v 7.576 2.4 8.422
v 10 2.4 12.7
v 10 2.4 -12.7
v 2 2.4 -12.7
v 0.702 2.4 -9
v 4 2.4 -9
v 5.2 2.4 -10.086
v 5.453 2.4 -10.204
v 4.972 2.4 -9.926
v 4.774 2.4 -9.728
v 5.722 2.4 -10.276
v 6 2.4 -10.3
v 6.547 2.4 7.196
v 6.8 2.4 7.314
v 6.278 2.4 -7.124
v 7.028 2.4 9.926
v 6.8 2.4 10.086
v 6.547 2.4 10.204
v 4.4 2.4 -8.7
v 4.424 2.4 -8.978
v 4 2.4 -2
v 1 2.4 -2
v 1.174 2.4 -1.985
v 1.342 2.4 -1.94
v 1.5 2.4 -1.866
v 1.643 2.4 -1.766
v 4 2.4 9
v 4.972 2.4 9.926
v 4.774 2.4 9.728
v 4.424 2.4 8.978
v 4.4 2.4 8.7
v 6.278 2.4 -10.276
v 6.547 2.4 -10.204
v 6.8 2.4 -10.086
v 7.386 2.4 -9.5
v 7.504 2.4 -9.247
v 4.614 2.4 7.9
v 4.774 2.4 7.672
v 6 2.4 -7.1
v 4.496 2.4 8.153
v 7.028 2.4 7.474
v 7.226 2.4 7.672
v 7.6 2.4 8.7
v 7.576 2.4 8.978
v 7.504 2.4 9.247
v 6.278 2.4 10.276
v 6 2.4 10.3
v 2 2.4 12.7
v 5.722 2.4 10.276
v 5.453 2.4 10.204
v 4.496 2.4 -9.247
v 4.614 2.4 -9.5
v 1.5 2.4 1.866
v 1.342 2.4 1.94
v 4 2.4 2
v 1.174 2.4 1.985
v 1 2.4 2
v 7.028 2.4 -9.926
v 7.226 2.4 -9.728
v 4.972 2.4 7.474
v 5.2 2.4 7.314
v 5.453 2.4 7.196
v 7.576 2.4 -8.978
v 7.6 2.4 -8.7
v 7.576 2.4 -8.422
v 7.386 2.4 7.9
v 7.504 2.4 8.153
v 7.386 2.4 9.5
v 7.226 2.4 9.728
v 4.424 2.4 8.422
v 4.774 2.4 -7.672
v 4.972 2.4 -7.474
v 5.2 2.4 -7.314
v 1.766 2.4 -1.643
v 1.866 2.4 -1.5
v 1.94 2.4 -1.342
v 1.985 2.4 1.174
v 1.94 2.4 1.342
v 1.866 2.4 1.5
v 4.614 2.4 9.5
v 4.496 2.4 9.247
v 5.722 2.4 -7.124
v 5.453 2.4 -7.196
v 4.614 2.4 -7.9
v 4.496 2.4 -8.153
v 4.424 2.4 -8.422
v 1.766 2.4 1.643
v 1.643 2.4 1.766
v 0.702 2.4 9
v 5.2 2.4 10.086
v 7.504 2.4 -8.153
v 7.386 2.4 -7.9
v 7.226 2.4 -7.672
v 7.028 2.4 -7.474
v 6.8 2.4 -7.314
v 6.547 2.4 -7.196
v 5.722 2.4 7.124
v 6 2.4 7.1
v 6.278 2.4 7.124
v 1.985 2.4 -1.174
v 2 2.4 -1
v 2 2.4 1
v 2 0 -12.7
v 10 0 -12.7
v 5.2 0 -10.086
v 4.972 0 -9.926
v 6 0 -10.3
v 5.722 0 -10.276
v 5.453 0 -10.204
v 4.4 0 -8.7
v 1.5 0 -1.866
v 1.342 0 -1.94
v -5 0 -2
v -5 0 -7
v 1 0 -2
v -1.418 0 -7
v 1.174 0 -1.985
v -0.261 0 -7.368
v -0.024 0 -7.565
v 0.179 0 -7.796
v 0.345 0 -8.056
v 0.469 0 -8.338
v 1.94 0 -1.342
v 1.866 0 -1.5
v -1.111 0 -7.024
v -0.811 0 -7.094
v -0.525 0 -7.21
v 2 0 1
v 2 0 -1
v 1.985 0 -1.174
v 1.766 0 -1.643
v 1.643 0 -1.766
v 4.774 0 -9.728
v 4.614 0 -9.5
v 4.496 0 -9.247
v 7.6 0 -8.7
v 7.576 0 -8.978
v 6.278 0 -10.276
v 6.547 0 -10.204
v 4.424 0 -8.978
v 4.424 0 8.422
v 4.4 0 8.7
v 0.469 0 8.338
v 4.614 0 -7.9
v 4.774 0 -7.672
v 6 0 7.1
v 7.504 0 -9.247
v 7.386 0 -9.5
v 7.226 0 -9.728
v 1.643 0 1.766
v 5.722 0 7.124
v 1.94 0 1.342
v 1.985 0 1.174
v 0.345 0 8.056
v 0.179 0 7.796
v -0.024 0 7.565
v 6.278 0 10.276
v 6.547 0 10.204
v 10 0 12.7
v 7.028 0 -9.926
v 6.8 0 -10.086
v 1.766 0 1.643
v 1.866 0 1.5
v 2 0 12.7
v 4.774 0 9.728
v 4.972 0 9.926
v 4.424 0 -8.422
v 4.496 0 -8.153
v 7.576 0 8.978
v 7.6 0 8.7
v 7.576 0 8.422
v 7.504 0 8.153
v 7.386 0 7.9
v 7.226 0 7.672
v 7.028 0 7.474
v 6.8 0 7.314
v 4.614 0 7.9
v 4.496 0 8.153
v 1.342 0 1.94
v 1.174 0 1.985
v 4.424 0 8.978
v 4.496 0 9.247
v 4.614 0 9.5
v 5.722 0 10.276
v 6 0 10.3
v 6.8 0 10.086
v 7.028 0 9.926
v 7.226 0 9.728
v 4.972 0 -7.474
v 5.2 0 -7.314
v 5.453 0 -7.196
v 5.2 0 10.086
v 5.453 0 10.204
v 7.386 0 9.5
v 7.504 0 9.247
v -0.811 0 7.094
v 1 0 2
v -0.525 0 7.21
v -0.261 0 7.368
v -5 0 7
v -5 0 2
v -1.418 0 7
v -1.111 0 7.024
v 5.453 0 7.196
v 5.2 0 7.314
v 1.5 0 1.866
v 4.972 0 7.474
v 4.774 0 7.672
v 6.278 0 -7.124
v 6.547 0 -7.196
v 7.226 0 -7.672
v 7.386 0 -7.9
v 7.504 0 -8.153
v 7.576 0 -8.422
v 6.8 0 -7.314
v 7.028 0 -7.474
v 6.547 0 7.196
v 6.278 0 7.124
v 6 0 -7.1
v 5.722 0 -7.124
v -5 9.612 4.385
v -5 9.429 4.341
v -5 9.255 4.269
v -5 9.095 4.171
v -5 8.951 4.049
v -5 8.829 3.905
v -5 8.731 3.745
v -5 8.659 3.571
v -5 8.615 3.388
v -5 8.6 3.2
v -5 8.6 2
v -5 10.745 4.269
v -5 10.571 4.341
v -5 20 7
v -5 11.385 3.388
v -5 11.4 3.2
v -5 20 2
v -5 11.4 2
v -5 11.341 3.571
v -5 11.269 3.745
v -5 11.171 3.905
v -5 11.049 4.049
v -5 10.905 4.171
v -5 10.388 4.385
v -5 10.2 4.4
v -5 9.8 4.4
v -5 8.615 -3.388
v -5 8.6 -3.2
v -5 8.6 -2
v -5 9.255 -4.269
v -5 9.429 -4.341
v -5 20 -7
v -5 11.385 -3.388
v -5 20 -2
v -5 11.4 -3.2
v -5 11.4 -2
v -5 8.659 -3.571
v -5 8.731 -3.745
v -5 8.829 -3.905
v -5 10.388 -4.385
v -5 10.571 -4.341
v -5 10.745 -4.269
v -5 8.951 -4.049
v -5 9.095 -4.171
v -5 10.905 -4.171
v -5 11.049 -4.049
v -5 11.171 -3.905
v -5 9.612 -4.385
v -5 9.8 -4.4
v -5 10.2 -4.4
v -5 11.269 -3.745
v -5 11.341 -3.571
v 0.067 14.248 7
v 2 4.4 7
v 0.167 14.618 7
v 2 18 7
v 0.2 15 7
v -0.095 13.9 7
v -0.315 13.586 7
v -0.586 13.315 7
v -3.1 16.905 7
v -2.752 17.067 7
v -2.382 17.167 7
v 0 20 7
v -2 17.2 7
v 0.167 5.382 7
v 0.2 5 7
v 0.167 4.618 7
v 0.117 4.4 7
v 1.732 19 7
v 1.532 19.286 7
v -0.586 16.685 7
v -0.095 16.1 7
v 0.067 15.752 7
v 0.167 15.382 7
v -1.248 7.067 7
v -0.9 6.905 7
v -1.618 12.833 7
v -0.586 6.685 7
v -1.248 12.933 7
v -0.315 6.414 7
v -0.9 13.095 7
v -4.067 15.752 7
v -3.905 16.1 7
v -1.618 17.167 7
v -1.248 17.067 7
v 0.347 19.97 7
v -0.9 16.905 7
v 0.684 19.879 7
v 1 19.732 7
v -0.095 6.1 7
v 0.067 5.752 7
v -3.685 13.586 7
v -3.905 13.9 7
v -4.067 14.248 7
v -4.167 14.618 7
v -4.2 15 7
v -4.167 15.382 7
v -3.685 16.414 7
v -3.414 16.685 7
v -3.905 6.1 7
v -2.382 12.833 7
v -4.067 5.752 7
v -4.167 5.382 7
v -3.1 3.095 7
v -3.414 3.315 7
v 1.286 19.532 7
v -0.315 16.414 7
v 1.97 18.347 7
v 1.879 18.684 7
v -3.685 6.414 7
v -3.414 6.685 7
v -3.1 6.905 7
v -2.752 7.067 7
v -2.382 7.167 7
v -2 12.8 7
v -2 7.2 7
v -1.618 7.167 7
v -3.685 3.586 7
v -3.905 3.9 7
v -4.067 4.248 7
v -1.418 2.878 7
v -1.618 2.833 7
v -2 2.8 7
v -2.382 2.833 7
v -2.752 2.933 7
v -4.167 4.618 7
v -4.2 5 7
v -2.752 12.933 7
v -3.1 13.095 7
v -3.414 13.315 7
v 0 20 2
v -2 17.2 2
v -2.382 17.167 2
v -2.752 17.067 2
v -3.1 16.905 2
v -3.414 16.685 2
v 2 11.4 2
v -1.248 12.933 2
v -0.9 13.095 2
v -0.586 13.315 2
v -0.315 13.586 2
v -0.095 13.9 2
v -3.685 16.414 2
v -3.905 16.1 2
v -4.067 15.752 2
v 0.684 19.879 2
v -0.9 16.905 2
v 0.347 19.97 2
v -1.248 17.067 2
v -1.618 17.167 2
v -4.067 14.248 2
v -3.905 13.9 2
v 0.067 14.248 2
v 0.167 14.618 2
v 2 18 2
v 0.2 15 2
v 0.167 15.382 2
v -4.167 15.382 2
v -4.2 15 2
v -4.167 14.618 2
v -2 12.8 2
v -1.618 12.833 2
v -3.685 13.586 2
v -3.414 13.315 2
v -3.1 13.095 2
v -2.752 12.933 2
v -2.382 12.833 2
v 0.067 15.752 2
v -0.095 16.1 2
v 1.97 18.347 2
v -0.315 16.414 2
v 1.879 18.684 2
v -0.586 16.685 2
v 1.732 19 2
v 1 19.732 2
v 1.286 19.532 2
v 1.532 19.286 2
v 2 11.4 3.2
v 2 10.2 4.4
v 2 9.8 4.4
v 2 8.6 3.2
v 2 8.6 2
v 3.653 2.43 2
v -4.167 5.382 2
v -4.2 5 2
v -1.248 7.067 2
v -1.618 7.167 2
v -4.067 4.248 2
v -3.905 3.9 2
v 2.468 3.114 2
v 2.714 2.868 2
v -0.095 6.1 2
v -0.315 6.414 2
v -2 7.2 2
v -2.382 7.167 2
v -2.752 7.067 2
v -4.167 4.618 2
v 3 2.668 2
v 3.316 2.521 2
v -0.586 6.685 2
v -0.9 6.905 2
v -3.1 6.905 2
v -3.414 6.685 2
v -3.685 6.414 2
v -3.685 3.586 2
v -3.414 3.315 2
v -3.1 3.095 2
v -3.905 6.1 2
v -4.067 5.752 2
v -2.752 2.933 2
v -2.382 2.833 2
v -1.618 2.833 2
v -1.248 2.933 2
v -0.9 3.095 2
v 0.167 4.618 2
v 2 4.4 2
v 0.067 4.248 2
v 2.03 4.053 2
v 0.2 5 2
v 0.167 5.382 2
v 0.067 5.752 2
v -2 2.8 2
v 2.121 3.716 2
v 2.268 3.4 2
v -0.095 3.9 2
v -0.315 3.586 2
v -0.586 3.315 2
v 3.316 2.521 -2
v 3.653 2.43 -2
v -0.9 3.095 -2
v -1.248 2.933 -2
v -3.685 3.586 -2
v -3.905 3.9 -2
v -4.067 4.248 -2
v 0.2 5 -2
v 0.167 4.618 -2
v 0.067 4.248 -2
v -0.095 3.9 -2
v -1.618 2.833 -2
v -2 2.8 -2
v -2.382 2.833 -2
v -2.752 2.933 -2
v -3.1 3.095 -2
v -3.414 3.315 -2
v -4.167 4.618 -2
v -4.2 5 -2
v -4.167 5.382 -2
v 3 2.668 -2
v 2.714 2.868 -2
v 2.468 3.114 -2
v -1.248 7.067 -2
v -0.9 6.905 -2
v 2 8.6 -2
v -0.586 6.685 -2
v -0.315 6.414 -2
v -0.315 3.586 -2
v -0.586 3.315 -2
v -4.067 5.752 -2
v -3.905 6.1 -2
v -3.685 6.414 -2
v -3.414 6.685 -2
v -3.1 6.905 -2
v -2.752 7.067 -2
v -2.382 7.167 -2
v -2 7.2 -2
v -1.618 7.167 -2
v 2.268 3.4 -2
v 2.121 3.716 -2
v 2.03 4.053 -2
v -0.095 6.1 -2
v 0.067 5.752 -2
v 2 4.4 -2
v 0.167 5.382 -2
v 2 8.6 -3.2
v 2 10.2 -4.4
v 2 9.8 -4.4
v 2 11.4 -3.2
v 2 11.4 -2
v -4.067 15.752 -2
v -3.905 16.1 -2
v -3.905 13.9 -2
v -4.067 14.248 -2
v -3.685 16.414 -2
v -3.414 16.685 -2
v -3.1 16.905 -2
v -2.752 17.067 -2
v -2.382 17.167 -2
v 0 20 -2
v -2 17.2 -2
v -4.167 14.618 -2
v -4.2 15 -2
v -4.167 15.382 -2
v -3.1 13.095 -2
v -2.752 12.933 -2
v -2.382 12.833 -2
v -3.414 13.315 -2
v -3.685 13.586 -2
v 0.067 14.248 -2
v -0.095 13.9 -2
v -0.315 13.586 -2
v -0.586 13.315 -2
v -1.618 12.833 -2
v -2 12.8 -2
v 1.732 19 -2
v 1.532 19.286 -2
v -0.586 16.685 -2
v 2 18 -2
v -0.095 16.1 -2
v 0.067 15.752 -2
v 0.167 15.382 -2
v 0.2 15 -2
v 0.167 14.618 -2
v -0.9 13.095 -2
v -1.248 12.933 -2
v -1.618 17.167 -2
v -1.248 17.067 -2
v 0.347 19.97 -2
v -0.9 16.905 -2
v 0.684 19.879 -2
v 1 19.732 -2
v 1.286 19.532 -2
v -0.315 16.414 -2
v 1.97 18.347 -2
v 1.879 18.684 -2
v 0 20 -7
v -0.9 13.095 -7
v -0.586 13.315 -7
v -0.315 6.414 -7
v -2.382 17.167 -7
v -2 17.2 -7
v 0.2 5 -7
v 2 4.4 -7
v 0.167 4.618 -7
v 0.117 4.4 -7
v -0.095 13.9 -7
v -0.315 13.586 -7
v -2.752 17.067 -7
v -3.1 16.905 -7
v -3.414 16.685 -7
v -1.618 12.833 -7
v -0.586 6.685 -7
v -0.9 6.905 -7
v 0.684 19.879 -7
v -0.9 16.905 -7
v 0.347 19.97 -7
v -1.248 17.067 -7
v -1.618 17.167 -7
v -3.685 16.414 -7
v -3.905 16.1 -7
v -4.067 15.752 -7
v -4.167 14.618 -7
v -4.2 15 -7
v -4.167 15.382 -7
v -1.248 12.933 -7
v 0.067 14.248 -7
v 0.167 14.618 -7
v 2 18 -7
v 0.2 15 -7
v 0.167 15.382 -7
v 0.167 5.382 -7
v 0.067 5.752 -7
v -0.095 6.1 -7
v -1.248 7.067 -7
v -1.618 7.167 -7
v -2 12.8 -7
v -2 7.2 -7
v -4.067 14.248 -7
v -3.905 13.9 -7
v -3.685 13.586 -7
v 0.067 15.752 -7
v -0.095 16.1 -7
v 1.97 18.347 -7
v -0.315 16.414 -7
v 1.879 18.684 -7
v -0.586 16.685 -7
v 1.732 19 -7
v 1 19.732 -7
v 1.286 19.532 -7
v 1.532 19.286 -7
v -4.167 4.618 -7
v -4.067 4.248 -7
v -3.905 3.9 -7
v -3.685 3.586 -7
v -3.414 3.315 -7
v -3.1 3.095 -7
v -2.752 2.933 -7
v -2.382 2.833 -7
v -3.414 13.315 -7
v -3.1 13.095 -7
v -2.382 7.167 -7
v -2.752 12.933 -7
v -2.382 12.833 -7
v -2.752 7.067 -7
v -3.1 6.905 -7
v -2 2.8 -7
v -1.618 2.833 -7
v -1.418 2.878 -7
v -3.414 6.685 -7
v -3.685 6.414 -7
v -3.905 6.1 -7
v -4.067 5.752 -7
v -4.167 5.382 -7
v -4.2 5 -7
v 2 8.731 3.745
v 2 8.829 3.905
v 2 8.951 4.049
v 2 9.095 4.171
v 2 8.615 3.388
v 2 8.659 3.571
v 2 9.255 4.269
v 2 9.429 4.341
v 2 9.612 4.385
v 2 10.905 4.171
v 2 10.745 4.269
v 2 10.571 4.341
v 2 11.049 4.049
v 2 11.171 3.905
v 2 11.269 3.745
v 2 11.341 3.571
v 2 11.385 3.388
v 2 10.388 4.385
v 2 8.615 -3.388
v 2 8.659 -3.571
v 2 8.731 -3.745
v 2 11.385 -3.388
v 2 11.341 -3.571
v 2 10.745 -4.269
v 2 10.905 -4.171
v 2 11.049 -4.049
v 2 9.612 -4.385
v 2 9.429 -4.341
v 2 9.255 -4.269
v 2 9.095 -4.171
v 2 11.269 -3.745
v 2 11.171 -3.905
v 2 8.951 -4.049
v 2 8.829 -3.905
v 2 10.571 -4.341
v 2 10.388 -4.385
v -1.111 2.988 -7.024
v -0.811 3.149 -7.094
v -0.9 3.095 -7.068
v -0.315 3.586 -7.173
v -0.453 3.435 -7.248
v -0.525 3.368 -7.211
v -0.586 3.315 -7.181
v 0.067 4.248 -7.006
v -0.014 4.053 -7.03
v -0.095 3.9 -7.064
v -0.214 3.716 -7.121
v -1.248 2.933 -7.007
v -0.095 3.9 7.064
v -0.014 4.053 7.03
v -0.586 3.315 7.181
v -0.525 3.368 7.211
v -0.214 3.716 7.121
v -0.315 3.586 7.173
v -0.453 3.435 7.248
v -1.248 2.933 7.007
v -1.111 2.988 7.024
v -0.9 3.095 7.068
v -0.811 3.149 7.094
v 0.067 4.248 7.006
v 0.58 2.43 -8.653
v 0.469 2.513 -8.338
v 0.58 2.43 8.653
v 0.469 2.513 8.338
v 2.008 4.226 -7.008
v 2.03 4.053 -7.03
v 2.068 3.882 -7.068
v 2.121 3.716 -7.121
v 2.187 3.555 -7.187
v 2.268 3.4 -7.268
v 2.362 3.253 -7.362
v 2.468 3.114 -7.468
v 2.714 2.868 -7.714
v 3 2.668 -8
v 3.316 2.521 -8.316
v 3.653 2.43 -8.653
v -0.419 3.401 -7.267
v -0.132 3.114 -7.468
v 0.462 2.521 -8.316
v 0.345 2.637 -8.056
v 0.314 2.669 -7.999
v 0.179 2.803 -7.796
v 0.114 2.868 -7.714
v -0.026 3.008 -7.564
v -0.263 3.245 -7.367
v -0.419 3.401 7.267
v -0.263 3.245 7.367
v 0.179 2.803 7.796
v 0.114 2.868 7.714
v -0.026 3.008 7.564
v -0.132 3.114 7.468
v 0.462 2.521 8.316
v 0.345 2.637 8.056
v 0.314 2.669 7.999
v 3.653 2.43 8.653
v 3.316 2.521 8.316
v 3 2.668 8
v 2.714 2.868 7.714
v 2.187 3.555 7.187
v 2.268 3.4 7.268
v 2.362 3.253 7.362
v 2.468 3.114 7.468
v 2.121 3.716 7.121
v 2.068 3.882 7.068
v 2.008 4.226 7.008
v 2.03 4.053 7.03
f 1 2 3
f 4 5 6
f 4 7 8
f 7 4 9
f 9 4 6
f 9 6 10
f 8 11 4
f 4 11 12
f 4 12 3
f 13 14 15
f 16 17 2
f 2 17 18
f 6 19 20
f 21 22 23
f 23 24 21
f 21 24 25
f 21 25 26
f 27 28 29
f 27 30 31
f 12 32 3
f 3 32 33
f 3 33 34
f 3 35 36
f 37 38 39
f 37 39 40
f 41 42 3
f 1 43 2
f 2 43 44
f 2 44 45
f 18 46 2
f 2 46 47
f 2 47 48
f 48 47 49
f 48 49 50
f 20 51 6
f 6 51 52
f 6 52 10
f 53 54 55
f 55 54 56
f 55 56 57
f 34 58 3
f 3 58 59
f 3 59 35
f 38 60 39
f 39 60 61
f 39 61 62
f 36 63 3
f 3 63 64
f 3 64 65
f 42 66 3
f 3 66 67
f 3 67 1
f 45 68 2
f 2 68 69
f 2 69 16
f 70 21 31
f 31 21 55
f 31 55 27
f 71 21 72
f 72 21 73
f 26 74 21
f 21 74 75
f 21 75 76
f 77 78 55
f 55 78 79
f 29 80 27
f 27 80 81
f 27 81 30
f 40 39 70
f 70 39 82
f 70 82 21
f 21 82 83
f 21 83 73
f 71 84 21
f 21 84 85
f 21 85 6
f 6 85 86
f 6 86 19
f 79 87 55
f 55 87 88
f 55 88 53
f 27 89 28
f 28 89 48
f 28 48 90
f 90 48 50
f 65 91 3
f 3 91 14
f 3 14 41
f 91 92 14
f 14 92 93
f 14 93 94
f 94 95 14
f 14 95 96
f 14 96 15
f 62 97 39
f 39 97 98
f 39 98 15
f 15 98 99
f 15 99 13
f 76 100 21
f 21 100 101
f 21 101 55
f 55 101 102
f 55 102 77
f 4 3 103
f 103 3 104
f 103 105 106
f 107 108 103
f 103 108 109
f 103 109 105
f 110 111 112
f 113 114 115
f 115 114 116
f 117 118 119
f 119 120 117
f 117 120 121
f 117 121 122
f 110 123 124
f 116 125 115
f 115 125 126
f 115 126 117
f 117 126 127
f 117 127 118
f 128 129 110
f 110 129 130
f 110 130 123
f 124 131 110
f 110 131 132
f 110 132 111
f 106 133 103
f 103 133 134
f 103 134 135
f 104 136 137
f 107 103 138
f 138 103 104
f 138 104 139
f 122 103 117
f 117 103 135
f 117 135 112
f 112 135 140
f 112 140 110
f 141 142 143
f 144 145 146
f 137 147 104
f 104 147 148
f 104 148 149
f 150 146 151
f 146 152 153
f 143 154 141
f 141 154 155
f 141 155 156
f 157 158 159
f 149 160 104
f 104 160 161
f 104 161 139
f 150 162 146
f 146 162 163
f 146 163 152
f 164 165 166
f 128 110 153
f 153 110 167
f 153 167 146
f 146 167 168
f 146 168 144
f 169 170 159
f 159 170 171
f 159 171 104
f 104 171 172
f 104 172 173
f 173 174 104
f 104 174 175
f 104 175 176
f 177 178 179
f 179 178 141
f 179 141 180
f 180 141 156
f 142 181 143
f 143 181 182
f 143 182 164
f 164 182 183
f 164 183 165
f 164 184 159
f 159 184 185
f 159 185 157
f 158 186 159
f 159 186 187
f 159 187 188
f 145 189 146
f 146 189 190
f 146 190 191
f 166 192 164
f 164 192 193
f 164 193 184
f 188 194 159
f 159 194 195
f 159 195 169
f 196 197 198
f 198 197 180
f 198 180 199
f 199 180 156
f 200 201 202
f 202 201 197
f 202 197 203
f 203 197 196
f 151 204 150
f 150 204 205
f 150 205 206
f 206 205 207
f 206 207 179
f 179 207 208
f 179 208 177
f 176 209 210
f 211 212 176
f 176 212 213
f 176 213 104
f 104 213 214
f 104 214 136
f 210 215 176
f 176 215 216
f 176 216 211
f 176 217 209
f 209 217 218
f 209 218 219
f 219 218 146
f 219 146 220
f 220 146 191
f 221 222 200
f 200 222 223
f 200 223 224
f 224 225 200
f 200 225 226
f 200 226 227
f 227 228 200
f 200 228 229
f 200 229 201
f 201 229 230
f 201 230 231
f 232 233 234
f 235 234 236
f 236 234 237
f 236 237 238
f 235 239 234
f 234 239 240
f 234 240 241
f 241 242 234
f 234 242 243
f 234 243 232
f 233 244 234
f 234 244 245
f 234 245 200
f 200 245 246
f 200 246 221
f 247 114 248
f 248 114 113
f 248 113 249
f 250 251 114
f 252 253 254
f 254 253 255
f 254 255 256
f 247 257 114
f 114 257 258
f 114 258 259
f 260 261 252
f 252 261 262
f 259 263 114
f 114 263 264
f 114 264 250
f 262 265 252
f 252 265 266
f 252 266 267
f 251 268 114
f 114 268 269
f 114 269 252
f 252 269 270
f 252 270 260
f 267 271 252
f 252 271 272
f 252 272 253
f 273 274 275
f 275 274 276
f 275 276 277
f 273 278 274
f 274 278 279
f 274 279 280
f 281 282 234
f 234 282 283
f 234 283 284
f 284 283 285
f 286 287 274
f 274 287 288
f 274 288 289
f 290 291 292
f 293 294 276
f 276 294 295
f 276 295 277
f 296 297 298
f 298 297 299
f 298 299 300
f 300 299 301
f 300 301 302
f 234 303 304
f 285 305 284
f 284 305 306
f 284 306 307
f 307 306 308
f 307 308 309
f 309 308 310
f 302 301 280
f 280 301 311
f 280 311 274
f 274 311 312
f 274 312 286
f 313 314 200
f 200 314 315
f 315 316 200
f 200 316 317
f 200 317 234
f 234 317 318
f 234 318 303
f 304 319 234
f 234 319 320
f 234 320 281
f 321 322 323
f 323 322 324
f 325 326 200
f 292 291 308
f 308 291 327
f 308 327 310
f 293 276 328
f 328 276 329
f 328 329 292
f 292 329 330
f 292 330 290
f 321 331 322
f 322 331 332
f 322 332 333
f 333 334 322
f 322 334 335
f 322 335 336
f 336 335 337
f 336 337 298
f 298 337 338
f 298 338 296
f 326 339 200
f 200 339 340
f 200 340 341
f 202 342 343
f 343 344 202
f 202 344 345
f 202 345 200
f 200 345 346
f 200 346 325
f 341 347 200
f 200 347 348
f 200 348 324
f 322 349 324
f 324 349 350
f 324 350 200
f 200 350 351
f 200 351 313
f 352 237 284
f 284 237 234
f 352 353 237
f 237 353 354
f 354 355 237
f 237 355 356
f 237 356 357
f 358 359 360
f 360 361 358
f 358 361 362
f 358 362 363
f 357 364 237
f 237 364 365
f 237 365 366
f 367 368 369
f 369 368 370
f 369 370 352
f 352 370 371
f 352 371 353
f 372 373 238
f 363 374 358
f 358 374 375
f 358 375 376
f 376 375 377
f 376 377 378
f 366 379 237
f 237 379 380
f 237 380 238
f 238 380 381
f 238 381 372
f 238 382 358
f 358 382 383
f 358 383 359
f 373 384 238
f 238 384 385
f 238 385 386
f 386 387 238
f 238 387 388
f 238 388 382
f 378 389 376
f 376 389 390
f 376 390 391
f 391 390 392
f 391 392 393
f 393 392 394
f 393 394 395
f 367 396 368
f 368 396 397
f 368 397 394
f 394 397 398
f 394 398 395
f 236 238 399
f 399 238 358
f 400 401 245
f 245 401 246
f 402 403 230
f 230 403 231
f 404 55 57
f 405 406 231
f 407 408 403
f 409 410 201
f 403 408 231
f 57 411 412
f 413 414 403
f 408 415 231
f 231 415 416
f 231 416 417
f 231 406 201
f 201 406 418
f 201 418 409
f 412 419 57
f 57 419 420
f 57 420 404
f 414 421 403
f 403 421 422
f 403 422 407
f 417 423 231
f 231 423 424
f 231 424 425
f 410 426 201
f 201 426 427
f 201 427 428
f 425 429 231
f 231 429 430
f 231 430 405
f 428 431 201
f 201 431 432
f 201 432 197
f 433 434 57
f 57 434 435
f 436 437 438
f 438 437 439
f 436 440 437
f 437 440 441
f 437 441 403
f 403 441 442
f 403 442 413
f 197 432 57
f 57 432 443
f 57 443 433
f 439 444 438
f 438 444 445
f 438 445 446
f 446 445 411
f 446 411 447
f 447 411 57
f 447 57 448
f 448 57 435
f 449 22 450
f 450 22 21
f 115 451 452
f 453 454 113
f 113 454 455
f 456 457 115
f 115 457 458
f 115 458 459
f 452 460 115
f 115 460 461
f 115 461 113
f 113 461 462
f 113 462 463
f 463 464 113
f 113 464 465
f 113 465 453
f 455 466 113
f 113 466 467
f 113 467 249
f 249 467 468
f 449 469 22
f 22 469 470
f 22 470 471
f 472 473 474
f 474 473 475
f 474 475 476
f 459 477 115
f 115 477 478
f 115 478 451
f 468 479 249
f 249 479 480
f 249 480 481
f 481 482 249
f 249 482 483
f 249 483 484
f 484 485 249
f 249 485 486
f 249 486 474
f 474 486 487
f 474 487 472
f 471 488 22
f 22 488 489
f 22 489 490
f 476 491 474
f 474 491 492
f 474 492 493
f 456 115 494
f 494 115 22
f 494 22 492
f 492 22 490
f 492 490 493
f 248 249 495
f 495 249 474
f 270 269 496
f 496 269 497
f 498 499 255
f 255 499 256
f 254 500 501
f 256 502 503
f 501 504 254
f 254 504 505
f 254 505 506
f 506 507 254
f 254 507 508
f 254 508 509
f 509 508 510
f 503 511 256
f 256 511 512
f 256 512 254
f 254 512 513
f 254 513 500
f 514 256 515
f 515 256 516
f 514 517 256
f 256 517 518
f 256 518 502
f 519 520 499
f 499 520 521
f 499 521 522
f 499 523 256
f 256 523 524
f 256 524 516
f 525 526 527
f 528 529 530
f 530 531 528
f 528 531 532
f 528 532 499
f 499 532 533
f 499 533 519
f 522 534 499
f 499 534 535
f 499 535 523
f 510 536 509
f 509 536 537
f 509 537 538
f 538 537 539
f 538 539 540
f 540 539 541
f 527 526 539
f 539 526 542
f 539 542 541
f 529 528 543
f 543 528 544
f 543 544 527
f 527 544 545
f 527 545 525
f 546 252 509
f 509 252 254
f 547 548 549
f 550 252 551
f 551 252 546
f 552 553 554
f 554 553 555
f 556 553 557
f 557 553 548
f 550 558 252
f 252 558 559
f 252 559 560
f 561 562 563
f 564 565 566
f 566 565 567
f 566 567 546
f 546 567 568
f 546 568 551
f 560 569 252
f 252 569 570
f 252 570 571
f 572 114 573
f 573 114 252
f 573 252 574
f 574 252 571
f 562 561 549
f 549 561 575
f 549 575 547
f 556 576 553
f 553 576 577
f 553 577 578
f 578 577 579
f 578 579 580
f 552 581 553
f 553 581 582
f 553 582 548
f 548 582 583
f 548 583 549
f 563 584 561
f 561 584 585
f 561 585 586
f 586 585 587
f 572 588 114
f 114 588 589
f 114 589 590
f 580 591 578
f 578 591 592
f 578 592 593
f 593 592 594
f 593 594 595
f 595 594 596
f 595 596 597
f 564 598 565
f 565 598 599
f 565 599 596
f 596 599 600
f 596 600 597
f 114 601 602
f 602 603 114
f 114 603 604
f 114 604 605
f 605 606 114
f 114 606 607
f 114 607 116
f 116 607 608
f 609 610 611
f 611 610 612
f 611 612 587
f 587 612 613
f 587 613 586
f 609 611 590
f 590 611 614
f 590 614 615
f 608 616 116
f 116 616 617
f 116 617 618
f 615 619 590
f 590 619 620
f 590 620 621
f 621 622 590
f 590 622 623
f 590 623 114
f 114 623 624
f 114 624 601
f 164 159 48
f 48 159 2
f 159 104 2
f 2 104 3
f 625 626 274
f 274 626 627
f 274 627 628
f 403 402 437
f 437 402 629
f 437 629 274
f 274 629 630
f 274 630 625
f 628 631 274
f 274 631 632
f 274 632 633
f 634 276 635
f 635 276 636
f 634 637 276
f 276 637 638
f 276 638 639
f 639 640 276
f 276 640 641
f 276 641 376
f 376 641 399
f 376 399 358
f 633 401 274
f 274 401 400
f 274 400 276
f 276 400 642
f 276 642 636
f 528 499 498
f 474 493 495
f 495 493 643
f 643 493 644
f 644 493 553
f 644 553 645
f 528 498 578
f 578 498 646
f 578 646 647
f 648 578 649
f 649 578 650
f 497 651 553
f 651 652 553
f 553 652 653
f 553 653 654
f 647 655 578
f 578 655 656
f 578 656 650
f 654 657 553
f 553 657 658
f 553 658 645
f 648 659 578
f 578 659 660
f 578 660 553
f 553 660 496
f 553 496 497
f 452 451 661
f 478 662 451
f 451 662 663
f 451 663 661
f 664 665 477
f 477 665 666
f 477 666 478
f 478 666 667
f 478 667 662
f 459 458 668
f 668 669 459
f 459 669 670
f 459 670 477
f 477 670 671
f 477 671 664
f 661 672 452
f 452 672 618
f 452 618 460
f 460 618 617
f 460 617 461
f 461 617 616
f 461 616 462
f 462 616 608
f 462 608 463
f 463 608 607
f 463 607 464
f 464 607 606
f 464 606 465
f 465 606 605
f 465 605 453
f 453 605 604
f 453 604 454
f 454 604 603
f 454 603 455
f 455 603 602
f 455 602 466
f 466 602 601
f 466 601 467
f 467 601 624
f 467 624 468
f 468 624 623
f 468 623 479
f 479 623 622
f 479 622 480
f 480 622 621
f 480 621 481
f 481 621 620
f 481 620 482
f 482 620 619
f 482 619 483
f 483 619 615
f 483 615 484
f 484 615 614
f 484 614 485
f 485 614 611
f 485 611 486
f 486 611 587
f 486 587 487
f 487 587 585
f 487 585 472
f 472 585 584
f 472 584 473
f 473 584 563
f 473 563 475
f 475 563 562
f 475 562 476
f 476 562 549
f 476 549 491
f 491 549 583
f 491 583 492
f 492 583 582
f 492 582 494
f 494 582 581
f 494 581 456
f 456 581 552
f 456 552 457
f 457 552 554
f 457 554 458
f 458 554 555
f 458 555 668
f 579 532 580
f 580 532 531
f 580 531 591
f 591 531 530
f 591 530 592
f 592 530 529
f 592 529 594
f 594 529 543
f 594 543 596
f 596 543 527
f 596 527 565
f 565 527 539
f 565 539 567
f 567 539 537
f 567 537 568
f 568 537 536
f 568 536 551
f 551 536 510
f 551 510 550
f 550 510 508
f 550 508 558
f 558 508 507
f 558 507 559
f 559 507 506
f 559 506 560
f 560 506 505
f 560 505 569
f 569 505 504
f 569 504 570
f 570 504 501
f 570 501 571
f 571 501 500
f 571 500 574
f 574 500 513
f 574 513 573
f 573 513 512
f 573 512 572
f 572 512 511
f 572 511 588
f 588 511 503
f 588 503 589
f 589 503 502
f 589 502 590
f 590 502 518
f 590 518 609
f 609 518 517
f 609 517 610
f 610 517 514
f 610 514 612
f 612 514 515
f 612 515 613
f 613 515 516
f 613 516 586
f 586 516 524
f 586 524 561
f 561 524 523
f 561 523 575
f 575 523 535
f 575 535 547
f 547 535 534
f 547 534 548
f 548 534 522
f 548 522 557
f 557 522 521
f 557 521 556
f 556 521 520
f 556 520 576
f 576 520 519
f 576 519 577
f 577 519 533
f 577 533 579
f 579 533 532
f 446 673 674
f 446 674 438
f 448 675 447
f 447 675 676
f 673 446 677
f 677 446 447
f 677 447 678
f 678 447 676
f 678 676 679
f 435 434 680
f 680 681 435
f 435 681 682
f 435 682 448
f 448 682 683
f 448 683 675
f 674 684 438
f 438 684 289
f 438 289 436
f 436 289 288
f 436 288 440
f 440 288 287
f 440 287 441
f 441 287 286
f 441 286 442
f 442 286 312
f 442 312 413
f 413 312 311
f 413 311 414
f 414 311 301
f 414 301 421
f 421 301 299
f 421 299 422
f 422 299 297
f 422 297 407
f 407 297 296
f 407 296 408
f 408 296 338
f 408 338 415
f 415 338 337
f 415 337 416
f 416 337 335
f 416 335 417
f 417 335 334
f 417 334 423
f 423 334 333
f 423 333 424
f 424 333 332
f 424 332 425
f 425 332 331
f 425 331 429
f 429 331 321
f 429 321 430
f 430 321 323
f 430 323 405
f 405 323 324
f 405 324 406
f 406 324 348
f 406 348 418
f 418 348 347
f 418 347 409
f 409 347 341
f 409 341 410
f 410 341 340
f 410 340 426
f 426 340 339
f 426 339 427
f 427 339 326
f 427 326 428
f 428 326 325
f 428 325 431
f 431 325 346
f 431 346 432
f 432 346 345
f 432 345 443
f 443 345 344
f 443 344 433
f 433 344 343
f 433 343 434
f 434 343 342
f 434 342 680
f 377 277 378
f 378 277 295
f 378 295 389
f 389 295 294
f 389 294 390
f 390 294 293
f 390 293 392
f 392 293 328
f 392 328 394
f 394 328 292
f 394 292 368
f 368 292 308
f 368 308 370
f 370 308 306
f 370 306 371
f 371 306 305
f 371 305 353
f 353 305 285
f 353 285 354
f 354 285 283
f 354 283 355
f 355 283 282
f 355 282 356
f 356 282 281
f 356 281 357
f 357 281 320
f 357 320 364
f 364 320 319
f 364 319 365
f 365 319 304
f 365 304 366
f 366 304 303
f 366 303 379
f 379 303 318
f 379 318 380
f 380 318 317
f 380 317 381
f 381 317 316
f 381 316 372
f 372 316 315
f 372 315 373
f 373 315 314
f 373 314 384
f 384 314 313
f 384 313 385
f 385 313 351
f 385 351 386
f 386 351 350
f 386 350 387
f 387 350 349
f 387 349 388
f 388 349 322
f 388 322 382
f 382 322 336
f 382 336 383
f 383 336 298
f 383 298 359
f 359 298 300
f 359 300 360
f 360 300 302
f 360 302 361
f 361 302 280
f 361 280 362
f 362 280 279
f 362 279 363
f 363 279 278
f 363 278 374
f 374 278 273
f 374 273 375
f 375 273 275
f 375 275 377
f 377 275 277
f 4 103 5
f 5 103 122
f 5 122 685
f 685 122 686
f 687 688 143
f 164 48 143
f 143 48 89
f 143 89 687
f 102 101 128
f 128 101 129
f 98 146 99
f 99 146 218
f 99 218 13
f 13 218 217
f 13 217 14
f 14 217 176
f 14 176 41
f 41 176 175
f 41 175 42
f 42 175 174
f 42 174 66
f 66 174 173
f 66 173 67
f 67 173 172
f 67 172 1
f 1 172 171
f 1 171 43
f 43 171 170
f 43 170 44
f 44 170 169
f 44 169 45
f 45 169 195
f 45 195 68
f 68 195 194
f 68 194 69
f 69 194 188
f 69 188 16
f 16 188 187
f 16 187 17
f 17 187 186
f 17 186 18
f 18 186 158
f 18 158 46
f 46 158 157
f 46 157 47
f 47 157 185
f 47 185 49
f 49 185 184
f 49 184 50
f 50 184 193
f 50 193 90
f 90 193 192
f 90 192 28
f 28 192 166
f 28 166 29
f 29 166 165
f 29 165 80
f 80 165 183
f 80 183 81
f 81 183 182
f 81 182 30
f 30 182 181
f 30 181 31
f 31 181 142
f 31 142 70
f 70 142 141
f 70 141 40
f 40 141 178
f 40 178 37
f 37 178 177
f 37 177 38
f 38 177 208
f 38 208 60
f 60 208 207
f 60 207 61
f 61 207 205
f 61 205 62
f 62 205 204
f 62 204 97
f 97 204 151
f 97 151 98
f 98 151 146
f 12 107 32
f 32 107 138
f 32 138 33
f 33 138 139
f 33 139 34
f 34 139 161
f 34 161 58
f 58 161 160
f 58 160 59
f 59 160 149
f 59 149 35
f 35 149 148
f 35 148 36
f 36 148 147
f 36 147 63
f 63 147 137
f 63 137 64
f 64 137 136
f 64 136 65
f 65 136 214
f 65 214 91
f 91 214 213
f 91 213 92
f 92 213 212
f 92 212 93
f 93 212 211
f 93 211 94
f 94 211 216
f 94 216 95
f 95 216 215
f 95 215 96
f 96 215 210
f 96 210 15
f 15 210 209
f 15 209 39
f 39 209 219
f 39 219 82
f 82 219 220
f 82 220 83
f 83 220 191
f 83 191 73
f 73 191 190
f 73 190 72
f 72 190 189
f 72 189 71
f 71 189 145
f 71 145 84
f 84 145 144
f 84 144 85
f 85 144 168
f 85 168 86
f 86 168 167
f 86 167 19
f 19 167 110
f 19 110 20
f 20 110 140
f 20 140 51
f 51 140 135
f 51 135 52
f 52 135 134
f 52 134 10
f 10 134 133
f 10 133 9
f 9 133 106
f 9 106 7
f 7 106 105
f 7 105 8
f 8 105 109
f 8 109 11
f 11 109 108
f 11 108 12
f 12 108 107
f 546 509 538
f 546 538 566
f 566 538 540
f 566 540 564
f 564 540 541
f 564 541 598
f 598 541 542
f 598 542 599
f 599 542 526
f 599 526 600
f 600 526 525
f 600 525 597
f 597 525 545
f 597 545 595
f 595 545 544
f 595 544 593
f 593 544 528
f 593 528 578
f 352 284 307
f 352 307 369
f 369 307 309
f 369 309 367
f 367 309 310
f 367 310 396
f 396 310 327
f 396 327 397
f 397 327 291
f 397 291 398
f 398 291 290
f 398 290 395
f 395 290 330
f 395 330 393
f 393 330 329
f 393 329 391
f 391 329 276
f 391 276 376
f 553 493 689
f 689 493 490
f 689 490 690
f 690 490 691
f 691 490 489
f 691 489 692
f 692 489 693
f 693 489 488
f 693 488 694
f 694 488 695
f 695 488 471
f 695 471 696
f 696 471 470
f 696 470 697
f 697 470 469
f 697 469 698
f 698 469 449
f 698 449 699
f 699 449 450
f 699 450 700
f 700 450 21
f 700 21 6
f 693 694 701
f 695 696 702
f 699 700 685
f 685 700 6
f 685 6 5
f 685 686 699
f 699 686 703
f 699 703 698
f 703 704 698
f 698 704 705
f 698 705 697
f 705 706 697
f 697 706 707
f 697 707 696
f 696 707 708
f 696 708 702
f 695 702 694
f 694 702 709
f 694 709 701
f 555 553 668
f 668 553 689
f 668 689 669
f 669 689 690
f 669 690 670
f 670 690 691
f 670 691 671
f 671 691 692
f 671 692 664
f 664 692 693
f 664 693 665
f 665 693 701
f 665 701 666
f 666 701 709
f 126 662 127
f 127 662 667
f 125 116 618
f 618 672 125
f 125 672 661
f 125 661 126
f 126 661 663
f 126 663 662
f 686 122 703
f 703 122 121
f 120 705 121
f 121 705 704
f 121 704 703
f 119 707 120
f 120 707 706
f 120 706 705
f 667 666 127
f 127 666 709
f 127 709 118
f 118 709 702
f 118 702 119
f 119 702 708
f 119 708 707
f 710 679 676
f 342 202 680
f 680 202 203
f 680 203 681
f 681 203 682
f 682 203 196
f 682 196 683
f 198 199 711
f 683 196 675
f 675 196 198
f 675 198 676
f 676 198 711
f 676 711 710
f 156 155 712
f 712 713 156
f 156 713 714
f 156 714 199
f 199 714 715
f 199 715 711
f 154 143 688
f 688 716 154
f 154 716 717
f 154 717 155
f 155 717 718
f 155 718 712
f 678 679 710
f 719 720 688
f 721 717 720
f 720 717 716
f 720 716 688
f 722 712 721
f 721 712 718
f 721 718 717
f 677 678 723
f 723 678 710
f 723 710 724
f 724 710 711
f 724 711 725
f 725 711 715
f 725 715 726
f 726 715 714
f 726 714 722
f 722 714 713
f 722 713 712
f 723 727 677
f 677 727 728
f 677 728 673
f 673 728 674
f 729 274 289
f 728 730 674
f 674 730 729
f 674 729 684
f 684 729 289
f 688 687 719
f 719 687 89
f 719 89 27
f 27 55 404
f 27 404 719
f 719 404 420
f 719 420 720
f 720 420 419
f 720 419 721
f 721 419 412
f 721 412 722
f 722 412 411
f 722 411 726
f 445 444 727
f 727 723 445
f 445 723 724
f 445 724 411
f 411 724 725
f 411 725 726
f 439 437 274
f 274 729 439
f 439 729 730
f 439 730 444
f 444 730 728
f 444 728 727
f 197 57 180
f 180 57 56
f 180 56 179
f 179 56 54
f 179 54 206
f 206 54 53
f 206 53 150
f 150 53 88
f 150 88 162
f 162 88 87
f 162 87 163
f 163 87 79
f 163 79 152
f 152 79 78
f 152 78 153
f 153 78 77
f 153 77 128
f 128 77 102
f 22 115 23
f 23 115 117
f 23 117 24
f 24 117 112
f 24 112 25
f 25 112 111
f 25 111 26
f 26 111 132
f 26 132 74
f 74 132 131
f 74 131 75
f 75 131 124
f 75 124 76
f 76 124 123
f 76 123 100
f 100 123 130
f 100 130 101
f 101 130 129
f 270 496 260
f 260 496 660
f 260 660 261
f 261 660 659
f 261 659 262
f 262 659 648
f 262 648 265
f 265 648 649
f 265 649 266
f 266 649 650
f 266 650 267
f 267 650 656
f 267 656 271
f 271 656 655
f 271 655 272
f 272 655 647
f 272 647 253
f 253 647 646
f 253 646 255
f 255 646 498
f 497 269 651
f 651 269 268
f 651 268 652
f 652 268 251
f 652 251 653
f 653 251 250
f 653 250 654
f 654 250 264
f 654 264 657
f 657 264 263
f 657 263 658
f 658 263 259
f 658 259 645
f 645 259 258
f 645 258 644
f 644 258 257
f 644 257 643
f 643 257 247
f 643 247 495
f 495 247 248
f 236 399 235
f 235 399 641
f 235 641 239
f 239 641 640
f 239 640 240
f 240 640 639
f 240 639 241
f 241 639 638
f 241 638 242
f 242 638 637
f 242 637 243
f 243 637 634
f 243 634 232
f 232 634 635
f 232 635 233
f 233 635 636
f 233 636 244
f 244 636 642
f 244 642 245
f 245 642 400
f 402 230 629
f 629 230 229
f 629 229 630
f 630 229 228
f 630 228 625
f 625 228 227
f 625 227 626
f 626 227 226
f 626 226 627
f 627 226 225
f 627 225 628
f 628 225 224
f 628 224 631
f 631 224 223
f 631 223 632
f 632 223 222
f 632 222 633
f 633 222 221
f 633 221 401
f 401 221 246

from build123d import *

# Parameters (mm, degrees)
SALIENTE_EXTRUIR1_DEPTH = 5
SALIENTE_EXTRUIR2_DEPTH = 10
SALIENTE_EXTRUIR3_DEPTH = 2
CORTAR_EXTRUIR1_START   = 7
CROQUIS2_R              = 2.2
CORTAR_EXTRUIR1_DEPTH   = 14
CROQUIS3_R              = 1.6
CROQUIS3_W              = 5
CROQUIS3_H              = 4
CROQUIS3_W_2            = 2
CORTAR_EXTRUIR2_DEPTH   = 2.4
REDONDEO1_R             = 2
REDONDEO2_R             = 2
REDONDEO3_R             = 1
REDONDEO4_R             = 1.2


with BuildPart() as part:
    # Croquis1 → Saliente-Extruir1 (new body)
    with BuildSketch(Plane(origin=(0, 0, 0), x_dir=(0, 0, -1), z_dir=(1, 0, 0))):
        Polygon((-12.7, 2.4), (-12.7, 0), (12.7, 0), (12.7, 2.4), (7, 2.4), (7, 20), (2, 20), (2, 11.4), (4.4, 11.4), (4.4, 8.6), (2, 8.6), (2, 2.4), (-2, 2.4), (-2, 8.6), (-4.4, 8.6), (-4.4, 11.4), (-2, 11.4), (-2, 20), (-7, 20), (-7, 2.4), align=None)
    extrude(amount=-SALIENTE_EXTRUIR1_DEPTH)

    # Croquis1<3> → Saliente-Extruir2 (add)
    with BuildSketch(Plane(origin=(0, 0, 0), x_dir=(0, 0, -1), z_dir=(1, 0, 0))):
        Polygon((2, 2.4), (7, 2.4), (12.7, 2.4), (12.7, 0), (-12.7, 0), (-12.7, 2.4), (-7, 2.4), (-2, 2.4), align=None)
    extrude(amount=SALIENTE_EXTRUIR2_DEPTH)

    # Croquis1<4> → Saliente-Extruir3 (add)
    with BuildSketch(Plane(origin=(0, 0, 0), x_dir=(0, 0, -1), z_dir=(1, 0, 0))):
        Polygon((-7, 20), (-7, 2.4), (-2, 2.4), (-2, 8.6), (-4.4, 8.6), (-4.4, 11.4), (-2, 11.4), (-2, 20), align=None)
        Polygon((2, 2.4), (7, 2.4), (7, 20), (2, 20), (2, 11.4), (4.4, 11.4), (4.4, 8.6), (2, 8.6), align=None)
    extrude(amount=SALIENTE_EXTRUIR3_DEPTH)

    # Croquis2 → Cortar-Extruir1 (cut)
    with BuildSketch(Plane.XY.offset(CORTAR_EXTRUIR1_START)):
        with Locations(Location((-2, 15, 0), (0, 0, 270))):
            Circle(CROQUIS2_R)
        with Locations(Location((-2, 5, 0), (0, 0, 270))):
            Circle(CROQUIS2_R)
    extrude(amount=-CORTAR_EXTRUIR1_DEPTH, mode=Mode.SUBTRACT)

    # Croquis3 → Cortar-Extruir2 (cut)
    with BuildSketch(Plane(origin=(0, 0, 0), x_dir=(1, 0, 0), z_dir=(0, 1, 0))):
        Polygon((-5, 7), (0, 7), (2, 12.7), (-5, 12.7), align=None)
        Polygon((2, -12.7), (0, -7), (-5, -7), (-5, -12.7), align=None)
        with Locations(Location((6, -8.7, 0), (0, 0, 90))):
            Circle(CROQUIS3_R)
        with Locations(Location((6, 8.7, 0), (0, 0, 90))):
            Circle(CROQUIS3_R)
        with Locations((-2.5, 0)):
            Rectangle(CROQUIS3_W, CROQUIS3_H)
        with Locations((1, 0)):
            Rectangle(CROQUIS3_W_2, CROQUIS3_H)
    extrude(amount=CORTAR_EXTRUIR2_DEPTH, mode=Mode.SUBTRACT)

    # Redondeo1
    redondeo1_edges = [part.edges().sort_by_distance(p)[0] for p in [
        (2, 20, -4.5),
        (2, 20, 4.5),
    ]]
    fillet(redondeo1_edges, radius=REDONDEO1_R)

    # Redondeo2
    # the kernel refuses this fillet: 2 mm, written as the material it adds along each edge
    with BuildSketch(Plane(origin=(2, 2.4, 3), x_dir=(1, 0, 0), z_dir=(0, 0, -1))) as redondeo2_piece_1_section:
        with BuildLine():
            CenterArc((REDONDEO2_R, -REDONDEO2_R), REDONDEO2_R, 90, 90)
            Line((0, -REDONDEO2_R), (0, 0))
            Line((0, 0), (REDONDEO2_R, 0))
        make_face()
    redondeo2_piece_1 = extrude(amount=15, mode=Mode.PRIVATE)
    redondeo2_piece_1 = split(redondeo2_piece_1, bisect_by=Plane(origin=(2, 2.4, 2), z_dir=(0, 0, 1)), keep=Keep.TOP, mode=Mode.PRIVATE)
    add(redondeo2_piece_1)
    with BuildSketch(Plane(origin=(2, 2.4, -2), x_dir=(1, 0, 0), z_dir=(0, 0, -1))) as redondeo2_piece_2:
        with BuildLine():
            CenterArc((REDONDEO2_R, -REDONDEO2_R), REDONDEO2_R, 90, 90)
            Line((0, -REDONDEO2_R), (0, 0))
            Line((0, 0), (REDONDEO2_R, 0))
        make_face()
    extrude(amount=5)
    with BuildSketch(Plane(origin=(-5, 2.4, -7), x_dir=(0, 0, -1), z_dir=(1, 0, 0))) as redondeo2_piece_3_section:
        with BuildLine():
            CenterArc((REDONDEO2_R, REDONDEO2_R), REDONDEO2_R, 180, 90)
            Line((0, REDONDEO2_R), (0, 0))
            Line((0, 0), (REDONDEO2_R, 0))
        make_face()
    redondeo2_piece_3 = extrude(amount=7, mode=Mode.PRIVATE)
    redondeo2_piece_3 = split(redondeo2_piece_3, bisect_by=Plane(origin=(-0.548095369, 2.4, -5.4379282), z_dir=(0.9435999821328808, 0, 0.331087713029081)), keep=Keep.TOP, mode=Mode.PRIVATE)
    redondeo2_piece_3 = redondeo2_piece_3 - Plane(origin=(-2, 5, -7), x_dir=(0, -1, 0), z_dir=(0, 0, 1)) * Cylinder(2.2, 22, mode=Mode.PRIVATE)
    add(redondeo2_piece_3)
    with BuildSketch(Plane(origin=(2, 2.4, 7), x_dir=(0, 1, 0), z_dir=(-1, 0, 0))) as redondeo2_piece_4_section:
        with BuildLine():
            CenterArc((REDONDEO2_R, -REDONDEO2_R), REDONDEO2_R, 90, 90)
            Line((0, -REDONDEO2_R), (0, 0))
            Line((0, 0), (REDONDEO2_R, 0))
        make_face()
    redondeo2_piece_4 = extrude(amount=7, mode=Mode.PRIVATE)
    redondeo2_piece_4 = split(redondeo2_piece_4, bisect_by=Plane(origin=(0.219238147, 2.4, 7.62482872), z_dir=(0.9435999821328808, 0, -0.331087713029081)), keep=Keep.TOP, mode=Mode.PRIVATE)
    redondeo2_piece_4 = redondeo2_piece_4 - Plane(origin=(-2, 5, 7), x_dir=(0, -1, 0), z_dir=(0, 0, 1)) * Cylinder(2.2, 22, mode=Mode.PRIVATE)
    add(redondeo2_piece_4)
    with BuildSketch(Plane(origin=(0, 0, 7), x_dir=(-1, 0, 0), z_dir=(0, 1, 0))) as redondeo2_piece_5:
        with BuildLine():
            CenterArc((REDONDEO2_R * 0.708893916529, REDONDEO2_R), REDONDEO2_R, 199.334808538, 70.665191462)
            Line((-REDONDEO2_R * 0.234706065604, REDONDEO2_R * 0.668912286971), (0, 0))
            Line((0, 0), (REDONDEO2_R * 0.708893916529, 0))
        make_face()
    extrude(amount=2.4)
    with BuildSketch(Plane(origin=(0, 0, -7), x_dir=(-1, 0, 0), z_dir=(0, 1, 0))) as redondeo2_piece_6:
        with BuildLine():
            CenterArc((REDONDEO2_R * 0.708893916529, -REDONDEO2_R), REDONDEO2_R, 90, 70.665191462)
            Line((-REDONDEO2_R * 0.234706065604, -REDONDEO2_R * 0.668912286971), (0, 0))
            Line((0, 0), (REDONDEO2_R * 0.708893916529, 0))
        make_face()
    extrude(amount=2.4)
    with BuildSketch(Plane(origin=(2, 2.4, 7), x_dir=(0, 1, 0), z_dir=(0, 0, -1))) as redondeo2_piece_7:
        with BuildLine():
            CenterArc((REDONDEO2_R, REDONDEO2_R), REDONDEO2_R, 180, 90)
            Line((0, REDONDEO2_R), (0, 0))
            Line((0, 0), (REDONDEO2_R, 0))
        make_face()
    extrude(amount=5)
    with BuildSketch(Plane(origin=(2, 2.4, 12), x_dir=(0, 1, 0), z_dir=(0, 0, -1))) as redondeo2_piece_8_section:
        with BuildLine():
            CenterArc((REDONDEO2_R, REDONDEO2_R), REDONDEO2_R, 180, 90)
            Line((0, REDONDEO2_R), (0, 0))
            Line((0, 0), (REDONDEO2_R, 0))
        make_face()
    redondeo2_piece_8 = extrude(amount=15, mode=Mode.PRIVATE)
    redondeo2_piece_8 = split(redondeo2_piece_8, bisect_by=Plane(origin=(2, 2.4, -2), z_dir=(0, 0, -1)), keep=Keep.TOP, mode=Mode.PRIVATE)
    add(redondeo2_piece_8)
    with BuildSketch(Plane(origin=(2, 2.4, -2), x_dir=(1, 0, 0), z_dir=(0, 0, -1))) as redondeo2_piece_9a_section:
        with BuildLine():
            CenterArc((REDONDEO2_R, -REDONDEO2_R), REDONDEO2_R, 90, 90)
            Line((0, -REDONDEO2_R), (0, 0))
            Line((0, 0), (REDONDEO2_R, 0))
        make_face()
    redondeo2_piece_9a = extrude(amount=10, mode=Mode.PRIVATE)
    redondeo2_piece_9a = split(redondeo2_piece_9a, bisect_by=Plane(origin=(2, 2.4, -7), z_dir=(0, 0, -1)), keep=Keep.TOP, mode=Mode.PRIVATE)
    with BuildSketch(Plane(origin=(-5, 2.4, -7), x_dir=(0, 0, -1), z_dir=(1, 0, 0))) as redondeo2_piece_9b_section:
        with BuildLine():
            CenterArc((REDONDEO2_R, REDONDEO2_R), REDONDEO2_R, 180, 90)
            Line((0, REDONDEO2_R), (0, 0))
            Line((0, 0), (REDONDEO2_R, 0))
        make_face()
    redondeo2_piece_9b = extrude(amount=12, mode=Mode.PRIVATE)
    redondeo2_piece_9b = split(redondeo2_piece_9b, bisect_by=Plane(origin=(2, 2.4, -7), z_dir=(1, 0, 0)), keep=Keep.TOP, mode=Mode.PRIVATE)
    redondeo2_piece_9b = redondeo2_piece_9b - Plane(origin=(6, 2.4, -8.7), x_dir=(0, 0, -1), z_dir=(0, -1, 0)) * Cylinder(1.6, 32, mode=Mode.PRIVATE)
    redondeo2_piece_9 = redondeo2_piece_9a & redondeo2_piece_9b
    add(redondeo2_piece_9)
    with BuildSketch(Plane(origin=(-5, 2.4, -7), x_dir=(0, 0, -1), z_dir=(1, 0, 0))) as redondeo2_piece_10a_section:
        with BuildLine():
            CenterArc((REDONDEO2_R, REDONDEO2_R), REDONDEO2_R, 180, 90)
            Line((0, REDONDEO2_R), (0, 0))
            Line((0, 0), (REDONDEO2_R, 0))
        make_face()
    redondeo2_piece_10a = extrude(amount=7, mode=Mode.PRIVATE)
    redondeo2_piece_10a = split(redondeo2_piece_10a, bisect_by=Plane(origin=(-0.548095369, 2.4, -5.4379282), z_dir=(-0.9435999821328808, 0, -0.331087713029081)), keep=Keep.TOP, mode=Mode.PRIVATE)
    redondeo2_piece_10a = redondeo2_piece_10a - Plane(origin=(-2, 5, -7), x_dir=(0, -1, 0), z_dir=(0, 0, 1)) * Cylinder(2.2, 22, mode=Mode.PRIVATE)
    with BuildSketch(Plane(origin=(0, 0, -7), x_dir=(-1, 0, 0), z_dir=(0, 1, 0))) as redondeo2_piece_10b_section:
        with BuildLine():
            CenterArc((REDONDEO2_R * 0.708893916529, -REDONDEO2_R), REDONDEO2_R, 90, 70.665191462)
            Line((-REDONDEO2_R * 0.234706065604, -REDONDEO2_R * 0.668912286971), (0, 0))
            Line((0, 0), (REDONDEO2_R * 0.708893916529, 0))
        make_face()
    redondeo2_piece_10b = extrude(amount=5.944469583, mode=Mode.PRIVATE)
    redondeo2_piece_10b = split(redondeo2_piece_10b, bisect_by=Plane(origin=(0, 2.4, -7), z_dir=(0, 1, 0)), keep=Keep.TOP, mode=Mode.PRIVATE)
    redondeo2_piece_10b = redondeo2_piece_10b - Plane(origin=(-2, 5, -7), x_dir=(0, -1, 0), z_dir=(0, 0, 1)) * Cylinder(2.2, 18, mode=Mode.PRIVATE)
    redondeo2_piece_10 = redondeo2_piece_10a & redondeo2_piece_10b
    add(redondeo2_piece_10)
    with BuildSketch(Plane(origin=(7, 2.4, 7), x_dir=(0, 1, 0), z_dir=(-1, 0, 0))) as redondeo2_piece_11a_section:
        with BuildLine():
            CenterArc((REDONDEO2_R, -REDONDEO2_R), REDONDEO2_R, 90, 90)
            Line((0, -REDONDEO2_R), (0, 0))
            Line((0, 0), (REDONDEO2_R, 0))
        make_face()
    redondeo2_piece_11a = extrude(amount=12, mode=Mode.PRIVATE)
    redondeo2_piece_11a = split(redondeo2_piece_11a, bisect_by=Plane(origin=(2, 2.4, 7), z_dir=(1, 0, 0)), keep=Keep.TOP, mode=Mode.PRIVATE)
    redondeo2_piece_11a = redondeo2_piece_11a - Plane(origin=(6, 2.4, 8.7), x_dir=(0, 0, -1), z_dir=(0, -1, 0)) * Cylinder(1.6, 32, mode=Mode.PRIVATE)
    with BuildSketch(Plane(origin=(2, 2.4, 12), x_dir=(0, 1, 0), z_dir=(0, 0, -1))) as redondeo2_piece_11b_section:
        with BuildLine():
            CenterArc((REDONDEO2_R, REDONDEO2_R), REDONDEO2_R, 180, 90)
            Line((0, REDONDEO2_R), (0, 0))
            Line((0, 0), (REDONDEO2_R, 0))
        make_face()
    redondeo2_piece_11b = extrude(amount=10, mode=Mode.PRIVATE)
    redondeo2_piece_11b = split(redondeo2_piece_11b, bisect_by=Plane(origin=(2, 2.4, 7), z_dir=(0, 0, 1)), keep=Keep.TOP, mode=Mode.PRIVATE)
    redondeo2_piece_11 = redondeo2_piece_11a & redondeo2_piece_11b
    add(redondeo2_piece_11)
    with BuildSketch(Plane(origin=(2, 2.4, 7), x_dir=(0, 1, 0), z_dir=(-1, 0, 0))) as redondeo2_piece_12a_section:
        with BuildLine():
            CenterArc((REDONDEO2_R, -REDONDEO2_R), REDONDEO2_R, 90, 90)
            Line((0, -REDONDEO2_R), (0, 0))
            Line((0, 0), (REDONDEO2_R, 0))
        make_face()
    redondeo2_piece_12a = extrude(amount=7, mode=Mode.PRIVATE)
    redondeo2_piece_12a = split(redondeo2_piece_12a, bisect_by=Plane(origin=(0.219238147, 2.4, 7.62482872), z_dir=(-0.9435999821328808, 0, 0.331087713029081)), keep=Keep.TOP, mode=Mode.PRIVATE)
    redondeo2_piece_12a = redondeo2_piece_12a - Plane(origin=(-2, 5, 7), x_dir=(0, -1, 0), z_dir=(0, 0, 1)) * Cylinder(2.2, 22, mode=Mode.PRIVATE)
    with BuildSketch(Plane(origin=(0, 0, 7), x_dir=(-1, 0, 0), z_dir=(0, 1, 0))) as redondeo2_piece_12b_section:
        with BuildLine():
            CenterArc((REDONDEO2_R * 0.708893916529, REDONDEO2_R), REDONDEO2_R, 199.334808538, 70.665191462)
            Line((-REDONDEO2_R * 0.234706065604, REDONDEO2_R * 0.668912286971), (0, 0))
            Line((0, 0), (REDONDEO2_R * 0.708893916529, 0))
        make_face()
    redondeo2_piece_12b = extrude(amount=5.944469583, mode=Mode.PRIVATE)
    redondeo2_piece_12b = split(redondeo2_piece_12b, bisect_by=Plane(origin=(0, 2.4, 7), z_dir=(0, 1, 0)), keep=Keep.TOP, mode=Mode.PRIVATE)
    redondeo2_piece_12b = redondeo2_piece_12b - Plane(origin=(-2, 5, 7), x_dir=(0, -1, 0), z_dir=(0, 0, 1)) * Cylinder(2.2, 18, mode=Mode.PRIVATE)
    redondeo2_piece_12 = redondeo2_piece_12a & redondeo2_piece_12b
    add(redondeo2_piece_12)

    # Redondeo3
    redondeo3_edges = [part.edges().sort_by_distance(p)[0] for p in [
        (2, 1.2, 2),
        (2, 1.2, -2),
    ]]
    fillet(redondeo3_edges, radius=REDONDEO3_R)

    # Redondeo4
    redondeo4_edges = [part.edges().sort_by_distance(p)[0] for p in [
        (-1.5, 11.4, 4.4),
        (-1.5, 8.6, 4.4),
        (-1.5, 8.6, -4.4),
        (-1.5, 11.4, -4.4),
    ]]
    fillet(redondeo4_edges, radius=REDONDEO4_R)


solid = part.part
